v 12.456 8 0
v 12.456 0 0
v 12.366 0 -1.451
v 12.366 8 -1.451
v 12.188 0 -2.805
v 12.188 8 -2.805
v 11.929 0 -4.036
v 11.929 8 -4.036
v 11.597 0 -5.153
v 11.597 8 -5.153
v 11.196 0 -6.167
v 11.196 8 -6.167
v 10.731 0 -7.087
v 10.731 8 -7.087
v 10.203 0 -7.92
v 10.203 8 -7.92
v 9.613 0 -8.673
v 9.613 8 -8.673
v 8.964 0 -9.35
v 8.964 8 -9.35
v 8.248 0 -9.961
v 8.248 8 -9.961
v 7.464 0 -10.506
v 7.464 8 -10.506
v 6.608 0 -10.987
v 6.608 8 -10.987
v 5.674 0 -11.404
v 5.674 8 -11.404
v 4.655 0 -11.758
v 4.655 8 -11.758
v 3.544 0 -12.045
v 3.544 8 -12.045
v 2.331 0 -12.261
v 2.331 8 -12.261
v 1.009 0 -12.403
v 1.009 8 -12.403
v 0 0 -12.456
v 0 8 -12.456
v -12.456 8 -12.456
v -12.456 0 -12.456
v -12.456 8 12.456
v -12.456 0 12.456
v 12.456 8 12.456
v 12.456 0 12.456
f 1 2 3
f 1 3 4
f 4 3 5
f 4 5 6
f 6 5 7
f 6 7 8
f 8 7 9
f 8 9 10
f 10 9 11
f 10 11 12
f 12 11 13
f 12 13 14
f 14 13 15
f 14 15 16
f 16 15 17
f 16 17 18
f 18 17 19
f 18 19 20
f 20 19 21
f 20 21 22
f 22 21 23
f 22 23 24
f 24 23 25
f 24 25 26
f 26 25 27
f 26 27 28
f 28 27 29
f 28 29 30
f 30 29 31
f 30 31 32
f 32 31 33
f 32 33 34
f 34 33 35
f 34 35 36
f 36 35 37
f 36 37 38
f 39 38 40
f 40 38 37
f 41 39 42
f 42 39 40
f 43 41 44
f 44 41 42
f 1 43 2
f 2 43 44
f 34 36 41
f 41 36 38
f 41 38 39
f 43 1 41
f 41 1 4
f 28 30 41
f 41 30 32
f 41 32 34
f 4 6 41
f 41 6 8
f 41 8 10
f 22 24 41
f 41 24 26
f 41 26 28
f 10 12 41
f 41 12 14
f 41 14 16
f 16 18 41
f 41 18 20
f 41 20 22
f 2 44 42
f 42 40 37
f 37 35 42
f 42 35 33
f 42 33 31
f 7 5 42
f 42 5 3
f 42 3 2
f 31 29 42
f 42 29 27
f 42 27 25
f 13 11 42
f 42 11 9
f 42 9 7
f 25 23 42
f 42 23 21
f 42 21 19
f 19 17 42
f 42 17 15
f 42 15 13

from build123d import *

# Parameters (mm, degrees)
BOSS_EXTRUDE1_DEPTH = 8


with BuildPart() as part:
    # Sketch1 → Boss-Extrude1 (new body)
    with BuildSketch(Plane(origin=(0, 0, 0), x_dir=(1, 0, 0), z_dir=(0, 1, 0))):
        with BuildLine():
            Line((0, 12.455769231), (-12.455769231, 12.455769231))
            Line((-12.455769231, 12.455769231), (-12.455769231, -12.455769231))
            Line((-12.455769231, -12.455769231), (12.455769231, -12.455769231))
            Line((12.455769231, -12.455769231), (12.455769231, 0))
            add(Edge.make_bspline(
                [(0, 12.455769231), (12.091837872, 12.091837872), (12.455769231, 0)],
                knots=[0, 0, 0, 1, 1, 1], degree=2))
        make_face()
    extrude(amount=BOSS_EXTRUDE1_DEPTH)


solid = part.part
